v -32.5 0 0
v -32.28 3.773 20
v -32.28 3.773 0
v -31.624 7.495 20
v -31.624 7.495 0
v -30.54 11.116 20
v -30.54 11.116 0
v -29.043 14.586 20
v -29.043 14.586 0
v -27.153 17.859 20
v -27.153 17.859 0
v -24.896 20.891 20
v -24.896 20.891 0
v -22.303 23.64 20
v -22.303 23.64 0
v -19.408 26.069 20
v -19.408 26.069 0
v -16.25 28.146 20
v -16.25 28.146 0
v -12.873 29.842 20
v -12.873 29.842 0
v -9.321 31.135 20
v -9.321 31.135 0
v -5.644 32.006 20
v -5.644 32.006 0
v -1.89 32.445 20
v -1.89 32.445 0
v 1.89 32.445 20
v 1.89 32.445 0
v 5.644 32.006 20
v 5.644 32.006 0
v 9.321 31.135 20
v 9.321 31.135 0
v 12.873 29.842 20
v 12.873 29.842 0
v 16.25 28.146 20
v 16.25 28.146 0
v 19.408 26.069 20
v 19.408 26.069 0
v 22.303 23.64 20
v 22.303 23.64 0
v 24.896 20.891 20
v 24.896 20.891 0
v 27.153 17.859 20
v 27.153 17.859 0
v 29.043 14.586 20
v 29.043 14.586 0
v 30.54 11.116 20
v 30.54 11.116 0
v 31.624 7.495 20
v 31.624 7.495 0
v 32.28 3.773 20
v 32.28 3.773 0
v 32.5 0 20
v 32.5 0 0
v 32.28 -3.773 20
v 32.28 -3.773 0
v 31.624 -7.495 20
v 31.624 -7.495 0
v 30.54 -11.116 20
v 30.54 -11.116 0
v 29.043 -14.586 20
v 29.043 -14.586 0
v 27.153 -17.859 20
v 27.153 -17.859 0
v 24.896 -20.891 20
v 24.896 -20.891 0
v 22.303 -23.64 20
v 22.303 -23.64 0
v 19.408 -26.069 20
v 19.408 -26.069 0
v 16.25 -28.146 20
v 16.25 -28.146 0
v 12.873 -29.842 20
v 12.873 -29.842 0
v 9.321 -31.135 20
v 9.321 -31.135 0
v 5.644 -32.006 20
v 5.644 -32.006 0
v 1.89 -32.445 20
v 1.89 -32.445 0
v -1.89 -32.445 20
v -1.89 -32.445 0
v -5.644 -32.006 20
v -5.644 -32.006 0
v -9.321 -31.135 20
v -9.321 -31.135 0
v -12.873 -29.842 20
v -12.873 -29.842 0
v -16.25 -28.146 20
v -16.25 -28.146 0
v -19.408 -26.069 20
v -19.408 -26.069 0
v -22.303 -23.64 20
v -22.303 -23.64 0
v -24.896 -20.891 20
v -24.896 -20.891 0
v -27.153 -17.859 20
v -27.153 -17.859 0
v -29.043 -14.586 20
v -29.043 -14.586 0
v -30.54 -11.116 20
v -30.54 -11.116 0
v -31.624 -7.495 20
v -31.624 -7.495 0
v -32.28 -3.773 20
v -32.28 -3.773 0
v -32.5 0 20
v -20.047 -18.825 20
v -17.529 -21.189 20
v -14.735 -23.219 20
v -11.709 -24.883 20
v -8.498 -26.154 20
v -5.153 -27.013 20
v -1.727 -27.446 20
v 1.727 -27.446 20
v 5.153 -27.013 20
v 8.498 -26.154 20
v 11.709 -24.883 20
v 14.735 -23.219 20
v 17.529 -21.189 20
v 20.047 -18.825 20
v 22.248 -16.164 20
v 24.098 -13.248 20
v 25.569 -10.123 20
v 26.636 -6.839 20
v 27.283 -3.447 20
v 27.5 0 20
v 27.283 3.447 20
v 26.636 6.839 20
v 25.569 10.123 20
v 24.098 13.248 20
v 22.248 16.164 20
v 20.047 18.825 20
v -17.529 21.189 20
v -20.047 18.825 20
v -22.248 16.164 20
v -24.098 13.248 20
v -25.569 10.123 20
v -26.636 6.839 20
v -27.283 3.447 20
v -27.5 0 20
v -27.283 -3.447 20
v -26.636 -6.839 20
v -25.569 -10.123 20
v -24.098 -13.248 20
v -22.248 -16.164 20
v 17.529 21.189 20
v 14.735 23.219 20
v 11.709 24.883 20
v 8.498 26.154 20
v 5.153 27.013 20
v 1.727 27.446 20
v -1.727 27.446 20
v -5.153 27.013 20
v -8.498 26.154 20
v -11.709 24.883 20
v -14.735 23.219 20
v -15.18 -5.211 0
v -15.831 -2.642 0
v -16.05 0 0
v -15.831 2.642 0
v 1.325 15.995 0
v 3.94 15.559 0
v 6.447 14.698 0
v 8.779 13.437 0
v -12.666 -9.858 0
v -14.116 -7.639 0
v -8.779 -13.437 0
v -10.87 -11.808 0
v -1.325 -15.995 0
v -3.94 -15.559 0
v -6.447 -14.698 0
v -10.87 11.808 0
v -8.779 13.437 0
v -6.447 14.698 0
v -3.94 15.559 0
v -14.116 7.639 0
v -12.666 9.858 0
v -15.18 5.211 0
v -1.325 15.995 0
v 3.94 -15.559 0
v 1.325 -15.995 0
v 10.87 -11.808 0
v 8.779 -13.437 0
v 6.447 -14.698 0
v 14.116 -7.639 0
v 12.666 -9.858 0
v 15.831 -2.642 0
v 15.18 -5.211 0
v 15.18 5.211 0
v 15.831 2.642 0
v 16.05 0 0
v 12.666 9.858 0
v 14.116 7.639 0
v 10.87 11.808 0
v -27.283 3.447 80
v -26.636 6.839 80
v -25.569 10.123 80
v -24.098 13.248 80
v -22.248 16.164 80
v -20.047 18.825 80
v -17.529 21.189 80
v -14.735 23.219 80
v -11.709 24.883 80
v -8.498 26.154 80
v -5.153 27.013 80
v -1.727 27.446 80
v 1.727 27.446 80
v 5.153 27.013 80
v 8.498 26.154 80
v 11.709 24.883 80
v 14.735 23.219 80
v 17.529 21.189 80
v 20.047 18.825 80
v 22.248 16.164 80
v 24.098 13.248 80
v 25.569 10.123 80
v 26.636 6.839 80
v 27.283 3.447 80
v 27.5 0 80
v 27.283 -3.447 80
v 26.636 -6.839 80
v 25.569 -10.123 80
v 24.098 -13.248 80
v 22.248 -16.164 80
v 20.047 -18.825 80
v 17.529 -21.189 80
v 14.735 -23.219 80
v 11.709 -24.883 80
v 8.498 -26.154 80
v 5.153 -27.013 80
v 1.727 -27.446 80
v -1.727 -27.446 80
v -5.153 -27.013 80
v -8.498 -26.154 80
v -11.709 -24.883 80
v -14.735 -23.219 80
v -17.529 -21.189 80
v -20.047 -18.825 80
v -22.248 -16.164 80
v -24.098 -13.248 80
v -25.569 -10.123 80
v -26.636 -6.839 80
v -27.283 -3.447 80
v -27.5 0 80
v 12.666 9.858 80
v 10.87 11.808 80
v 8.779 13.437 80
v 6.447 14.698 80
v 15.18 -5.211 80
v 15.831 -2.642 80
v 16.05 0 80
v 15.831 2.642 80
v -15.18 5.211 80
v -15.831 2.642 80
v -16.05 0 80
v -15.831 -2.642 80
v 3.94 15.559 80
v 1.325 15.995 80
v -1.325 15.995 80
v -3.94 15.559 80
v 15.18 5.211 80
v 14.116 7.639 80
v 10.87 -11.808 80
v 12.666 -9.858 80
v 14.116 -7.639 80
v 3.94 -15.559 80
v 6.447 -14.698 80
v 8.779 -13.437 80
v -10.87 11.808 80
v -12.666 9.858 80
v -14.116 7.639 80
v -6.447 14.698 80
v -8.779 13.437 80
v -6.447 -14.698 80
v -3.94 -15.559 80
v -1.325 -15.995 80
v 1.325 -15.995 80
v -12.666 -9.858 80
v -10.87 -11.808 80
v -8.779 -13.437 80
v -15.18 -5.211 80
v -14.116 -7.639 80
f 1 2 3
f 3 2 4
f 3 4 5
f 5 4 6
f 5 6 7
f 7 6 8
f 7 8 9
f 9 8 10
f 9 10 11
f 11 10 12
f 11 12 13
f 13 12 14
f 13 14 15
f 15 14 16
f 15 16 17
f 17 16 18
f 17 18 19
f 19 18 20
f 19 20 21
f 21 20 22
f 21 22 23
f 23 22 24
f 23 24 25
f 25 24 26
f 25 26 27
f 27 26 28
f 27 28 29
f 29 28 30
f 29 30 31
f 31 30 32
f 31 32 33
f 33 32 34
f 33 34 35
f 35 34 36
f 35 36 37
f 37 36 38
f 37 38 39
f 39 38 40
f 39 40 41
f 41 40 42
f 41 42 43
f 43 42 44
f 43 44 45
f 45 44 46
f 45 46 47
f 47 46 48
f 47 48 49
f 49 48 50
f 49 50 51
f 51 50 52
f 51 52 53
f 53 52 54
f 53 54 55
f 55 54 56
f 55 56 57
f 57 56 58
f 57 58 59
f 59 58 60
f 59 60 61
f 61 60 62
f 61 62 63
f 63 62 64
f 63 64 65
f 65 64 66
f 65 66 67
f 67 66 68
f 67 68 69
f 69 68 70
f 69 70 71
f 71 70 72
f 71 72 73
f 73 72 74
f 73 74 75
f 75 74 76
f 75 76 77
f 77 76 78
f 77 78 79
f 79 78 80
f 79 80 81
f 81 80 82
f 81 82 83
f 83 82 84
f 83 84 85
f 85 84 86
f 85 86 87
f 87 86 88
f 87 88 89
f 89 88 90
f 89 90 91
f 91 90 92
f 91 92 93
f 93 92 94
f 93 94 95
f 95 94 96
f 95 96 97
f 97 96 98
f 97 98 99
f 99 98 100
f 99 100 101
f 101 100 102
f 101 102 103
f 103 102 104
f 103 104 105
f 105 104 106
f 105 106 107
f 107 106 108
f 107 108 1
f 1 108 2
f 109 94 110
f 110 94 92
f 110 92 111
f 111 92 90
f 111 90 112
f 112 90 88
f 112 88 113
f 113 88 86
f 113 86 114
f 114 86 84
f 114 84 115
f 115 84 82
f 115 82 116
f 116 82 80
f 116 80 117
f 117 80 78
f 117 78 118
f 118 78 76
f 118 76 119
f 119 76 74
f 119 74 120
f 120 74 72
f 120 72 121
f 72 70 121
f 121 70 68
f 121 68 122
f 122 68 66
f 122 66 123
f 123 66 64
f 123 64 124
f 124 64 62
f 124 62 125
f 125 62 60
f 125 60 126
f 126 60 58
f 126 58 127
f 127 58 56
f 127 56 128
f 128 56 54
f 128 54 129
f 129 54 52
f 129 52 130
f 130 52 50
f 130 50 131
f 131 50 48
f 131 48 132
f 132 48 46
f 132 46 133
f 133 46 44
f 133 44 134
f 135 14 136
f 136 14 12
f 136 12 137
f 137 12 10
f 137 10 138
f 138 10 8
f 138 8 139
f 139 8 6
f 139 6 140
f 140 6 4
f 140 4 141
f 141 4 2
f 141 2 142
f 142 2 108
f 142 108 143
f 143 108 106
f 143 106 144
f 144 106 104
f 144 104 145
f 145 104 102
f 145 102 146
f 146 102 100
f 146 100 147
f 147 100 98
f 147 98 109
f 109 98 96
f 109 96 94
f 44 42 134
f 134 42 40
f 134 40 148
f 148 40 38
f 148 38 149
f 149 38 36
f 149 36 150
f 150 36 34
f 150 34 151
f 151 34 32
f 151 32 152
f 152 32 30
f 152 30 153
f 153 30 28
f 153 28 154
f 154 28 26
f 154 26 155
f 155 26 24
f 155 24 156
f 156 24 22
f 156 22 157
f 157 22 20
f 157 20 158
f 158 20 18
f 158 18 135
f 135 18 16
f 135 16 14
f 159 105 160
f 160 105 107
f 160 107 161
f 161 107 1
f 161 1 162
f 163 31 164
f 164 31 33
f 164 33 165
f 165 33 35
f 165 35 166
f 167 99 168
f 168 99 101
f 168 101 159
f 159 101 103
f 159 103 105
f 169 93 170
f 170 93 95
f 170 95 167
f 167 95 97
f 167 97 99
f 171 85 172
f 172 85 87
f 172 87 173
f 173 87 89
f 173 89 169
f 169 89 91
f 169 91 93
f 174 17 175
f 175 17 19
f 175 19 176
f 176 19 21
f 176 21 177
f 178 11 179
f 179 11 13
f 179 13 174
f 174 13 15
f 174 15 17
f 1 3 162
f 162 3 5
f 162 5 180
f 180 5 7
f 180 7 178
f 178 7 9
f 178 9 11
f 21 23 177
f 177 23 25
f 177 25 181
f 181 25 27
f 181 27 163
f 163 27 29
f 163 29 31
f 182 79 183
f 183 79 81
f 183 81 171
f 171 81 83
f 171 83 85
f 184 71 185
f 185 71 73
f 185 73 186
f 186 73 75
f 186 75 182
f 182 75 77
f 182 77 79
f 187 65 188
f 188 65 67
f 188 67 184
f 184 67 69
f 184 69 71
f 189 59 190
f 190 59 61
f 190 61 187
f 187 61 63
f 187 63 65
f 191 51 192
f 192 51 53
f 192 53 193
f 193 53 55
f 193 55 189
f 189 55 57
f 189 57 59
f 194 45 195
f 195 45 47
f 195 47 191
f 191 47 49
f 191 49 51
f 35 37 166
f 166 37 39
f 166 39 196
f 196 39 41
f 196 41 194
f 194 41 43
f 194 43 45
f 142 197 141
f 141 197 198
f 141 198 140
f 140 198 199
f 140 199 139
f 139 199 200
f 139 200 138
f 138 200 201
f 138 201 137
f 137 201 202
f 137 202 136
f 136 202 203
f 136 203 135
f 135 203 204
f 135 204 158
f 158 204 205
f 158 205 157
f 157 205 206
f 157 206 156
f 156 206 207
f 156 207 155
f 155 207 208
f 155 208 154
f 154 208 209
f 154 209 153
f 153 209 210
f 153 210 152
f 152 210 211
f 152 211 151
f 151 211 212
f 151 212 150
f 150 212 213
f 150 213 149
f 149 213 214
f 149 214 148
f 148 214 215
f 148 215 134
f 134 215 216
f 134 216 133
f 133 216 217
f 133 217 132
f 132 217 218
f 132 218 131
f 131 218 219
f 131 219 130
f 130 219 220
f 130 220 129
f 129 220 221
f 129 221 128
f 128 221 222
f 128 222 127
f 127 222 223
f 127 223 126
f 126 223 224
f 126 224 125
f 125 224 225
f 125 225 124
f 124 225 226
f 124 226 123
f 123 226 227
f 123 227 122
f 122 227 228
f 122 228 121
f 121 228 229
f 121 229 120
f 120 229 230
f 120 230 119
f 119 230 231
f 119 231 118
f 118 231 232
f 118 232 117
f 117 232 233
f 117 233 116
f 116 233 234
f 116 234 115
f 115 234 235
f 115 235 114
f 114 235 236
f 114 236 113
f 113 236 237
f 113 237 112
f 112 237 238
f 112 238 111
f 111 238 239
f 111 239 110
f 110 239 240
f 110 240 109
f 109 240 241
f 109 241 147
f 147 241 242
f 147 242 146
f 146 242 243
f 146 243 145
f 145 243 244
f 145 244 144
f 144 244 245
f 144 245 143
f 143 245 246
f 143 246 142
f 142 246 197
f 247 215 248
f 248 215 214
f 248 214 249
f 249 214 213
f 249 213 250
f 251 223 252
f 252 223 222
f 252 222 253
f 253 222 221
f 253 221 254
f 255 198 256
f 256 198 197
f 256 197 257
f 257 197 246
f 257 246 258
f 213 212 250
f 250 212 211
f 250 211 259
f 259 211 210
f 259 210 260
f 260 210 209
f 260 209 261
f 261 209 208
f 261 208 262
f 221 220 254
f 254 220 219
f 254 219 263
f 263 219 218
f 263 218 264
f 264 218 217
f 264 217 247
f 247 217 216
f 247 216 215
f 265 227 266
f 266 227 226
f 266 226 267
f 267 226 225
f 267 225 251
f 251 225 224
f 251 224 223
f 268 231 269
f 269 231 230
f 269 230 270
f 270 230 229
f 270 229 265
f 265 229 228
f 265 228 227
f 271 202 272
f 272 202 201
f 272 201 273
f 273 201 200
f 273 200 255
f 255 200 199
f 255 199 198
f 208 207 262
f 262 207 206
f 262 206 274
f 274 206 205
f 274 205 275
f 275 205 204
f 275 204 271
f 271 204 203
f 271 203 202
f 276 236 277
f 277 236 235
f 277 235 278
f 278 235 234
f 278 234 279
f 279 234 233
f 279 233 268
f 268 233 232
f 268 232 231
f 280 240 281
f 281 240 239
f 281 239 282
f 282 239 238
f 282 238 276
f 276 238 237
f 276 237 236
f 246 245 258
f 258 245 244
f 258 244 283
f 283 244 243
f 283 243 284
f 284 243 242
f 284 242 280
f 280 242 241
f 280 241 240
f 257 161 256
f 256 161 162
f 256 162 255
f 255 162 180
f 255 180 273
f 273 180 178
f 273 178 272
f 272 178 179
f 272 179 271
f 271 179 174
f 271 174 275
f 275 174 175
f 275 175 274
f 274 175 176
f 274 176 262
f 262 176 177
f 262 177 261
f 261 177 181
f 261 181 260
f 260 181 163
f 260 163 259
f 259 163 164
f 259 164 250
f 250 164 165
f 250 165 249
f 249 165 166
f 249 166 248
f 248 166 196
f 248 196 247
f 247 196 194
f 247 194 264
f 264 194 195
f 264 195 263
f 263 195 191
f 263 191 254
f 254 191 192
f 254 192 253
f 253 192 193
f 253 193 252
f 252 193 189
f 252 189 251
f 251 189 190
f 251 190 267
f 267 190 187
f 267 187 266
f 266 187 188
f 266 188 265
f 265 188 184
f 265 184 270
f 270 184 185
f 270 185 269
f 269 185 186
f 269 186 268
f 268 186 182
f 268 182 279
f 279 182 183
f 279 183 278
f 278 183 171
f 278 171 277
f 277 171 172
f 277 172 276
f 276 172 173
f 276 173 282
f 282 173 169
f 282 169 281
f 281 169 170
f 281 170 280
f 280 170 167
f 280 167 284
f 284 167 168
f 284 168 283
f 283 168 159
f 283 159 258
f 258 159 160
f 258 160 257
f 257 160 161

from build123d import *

# Parameters (mm, degrees)
ESQUISSE1_R             = 32.5
BOSS_EXTRU_1_DEPTH      = 20
ESQUISSE2_R             = 27.5
BOSS_EXTRU_2_DEPTH      = 80
ESQUISSE3_R             = 16.05
ENL_V_MAT_EXTRU_1_DEPTH = 81


with BuildPart() as part:
    # Esquisse1 → Boss.-Extru.1 (new body)
    with BuildSketch(Plane.XY):
        Circle(ESQUISSE1_R)
    extrude(amount=BOSS_EXTRU_1_DEPTH)

    # Esquisse2 → Boss.-Extru.2 (add)
    with BuildSketch(Plane.XY):
        Circle(ESQUISSE2_R)
    extrude(amount=BOSS_EXTRU_2_DEPTH)

    # Esquisse3 → Enlèv. mat.-Extru.1 (cut, through all)
    with BuildSketch(Plane(origin=(0, 0, 0), x_dir=(-1, 0, 0), z_dir=(0, 0, -1))):
        Circle(ESQUISSE3_R)
    extrude(amount=-ENL_V_MAT_EXTRU_1_DEPTH, mode=Mode.SUBTRACT)


solid = part.part
